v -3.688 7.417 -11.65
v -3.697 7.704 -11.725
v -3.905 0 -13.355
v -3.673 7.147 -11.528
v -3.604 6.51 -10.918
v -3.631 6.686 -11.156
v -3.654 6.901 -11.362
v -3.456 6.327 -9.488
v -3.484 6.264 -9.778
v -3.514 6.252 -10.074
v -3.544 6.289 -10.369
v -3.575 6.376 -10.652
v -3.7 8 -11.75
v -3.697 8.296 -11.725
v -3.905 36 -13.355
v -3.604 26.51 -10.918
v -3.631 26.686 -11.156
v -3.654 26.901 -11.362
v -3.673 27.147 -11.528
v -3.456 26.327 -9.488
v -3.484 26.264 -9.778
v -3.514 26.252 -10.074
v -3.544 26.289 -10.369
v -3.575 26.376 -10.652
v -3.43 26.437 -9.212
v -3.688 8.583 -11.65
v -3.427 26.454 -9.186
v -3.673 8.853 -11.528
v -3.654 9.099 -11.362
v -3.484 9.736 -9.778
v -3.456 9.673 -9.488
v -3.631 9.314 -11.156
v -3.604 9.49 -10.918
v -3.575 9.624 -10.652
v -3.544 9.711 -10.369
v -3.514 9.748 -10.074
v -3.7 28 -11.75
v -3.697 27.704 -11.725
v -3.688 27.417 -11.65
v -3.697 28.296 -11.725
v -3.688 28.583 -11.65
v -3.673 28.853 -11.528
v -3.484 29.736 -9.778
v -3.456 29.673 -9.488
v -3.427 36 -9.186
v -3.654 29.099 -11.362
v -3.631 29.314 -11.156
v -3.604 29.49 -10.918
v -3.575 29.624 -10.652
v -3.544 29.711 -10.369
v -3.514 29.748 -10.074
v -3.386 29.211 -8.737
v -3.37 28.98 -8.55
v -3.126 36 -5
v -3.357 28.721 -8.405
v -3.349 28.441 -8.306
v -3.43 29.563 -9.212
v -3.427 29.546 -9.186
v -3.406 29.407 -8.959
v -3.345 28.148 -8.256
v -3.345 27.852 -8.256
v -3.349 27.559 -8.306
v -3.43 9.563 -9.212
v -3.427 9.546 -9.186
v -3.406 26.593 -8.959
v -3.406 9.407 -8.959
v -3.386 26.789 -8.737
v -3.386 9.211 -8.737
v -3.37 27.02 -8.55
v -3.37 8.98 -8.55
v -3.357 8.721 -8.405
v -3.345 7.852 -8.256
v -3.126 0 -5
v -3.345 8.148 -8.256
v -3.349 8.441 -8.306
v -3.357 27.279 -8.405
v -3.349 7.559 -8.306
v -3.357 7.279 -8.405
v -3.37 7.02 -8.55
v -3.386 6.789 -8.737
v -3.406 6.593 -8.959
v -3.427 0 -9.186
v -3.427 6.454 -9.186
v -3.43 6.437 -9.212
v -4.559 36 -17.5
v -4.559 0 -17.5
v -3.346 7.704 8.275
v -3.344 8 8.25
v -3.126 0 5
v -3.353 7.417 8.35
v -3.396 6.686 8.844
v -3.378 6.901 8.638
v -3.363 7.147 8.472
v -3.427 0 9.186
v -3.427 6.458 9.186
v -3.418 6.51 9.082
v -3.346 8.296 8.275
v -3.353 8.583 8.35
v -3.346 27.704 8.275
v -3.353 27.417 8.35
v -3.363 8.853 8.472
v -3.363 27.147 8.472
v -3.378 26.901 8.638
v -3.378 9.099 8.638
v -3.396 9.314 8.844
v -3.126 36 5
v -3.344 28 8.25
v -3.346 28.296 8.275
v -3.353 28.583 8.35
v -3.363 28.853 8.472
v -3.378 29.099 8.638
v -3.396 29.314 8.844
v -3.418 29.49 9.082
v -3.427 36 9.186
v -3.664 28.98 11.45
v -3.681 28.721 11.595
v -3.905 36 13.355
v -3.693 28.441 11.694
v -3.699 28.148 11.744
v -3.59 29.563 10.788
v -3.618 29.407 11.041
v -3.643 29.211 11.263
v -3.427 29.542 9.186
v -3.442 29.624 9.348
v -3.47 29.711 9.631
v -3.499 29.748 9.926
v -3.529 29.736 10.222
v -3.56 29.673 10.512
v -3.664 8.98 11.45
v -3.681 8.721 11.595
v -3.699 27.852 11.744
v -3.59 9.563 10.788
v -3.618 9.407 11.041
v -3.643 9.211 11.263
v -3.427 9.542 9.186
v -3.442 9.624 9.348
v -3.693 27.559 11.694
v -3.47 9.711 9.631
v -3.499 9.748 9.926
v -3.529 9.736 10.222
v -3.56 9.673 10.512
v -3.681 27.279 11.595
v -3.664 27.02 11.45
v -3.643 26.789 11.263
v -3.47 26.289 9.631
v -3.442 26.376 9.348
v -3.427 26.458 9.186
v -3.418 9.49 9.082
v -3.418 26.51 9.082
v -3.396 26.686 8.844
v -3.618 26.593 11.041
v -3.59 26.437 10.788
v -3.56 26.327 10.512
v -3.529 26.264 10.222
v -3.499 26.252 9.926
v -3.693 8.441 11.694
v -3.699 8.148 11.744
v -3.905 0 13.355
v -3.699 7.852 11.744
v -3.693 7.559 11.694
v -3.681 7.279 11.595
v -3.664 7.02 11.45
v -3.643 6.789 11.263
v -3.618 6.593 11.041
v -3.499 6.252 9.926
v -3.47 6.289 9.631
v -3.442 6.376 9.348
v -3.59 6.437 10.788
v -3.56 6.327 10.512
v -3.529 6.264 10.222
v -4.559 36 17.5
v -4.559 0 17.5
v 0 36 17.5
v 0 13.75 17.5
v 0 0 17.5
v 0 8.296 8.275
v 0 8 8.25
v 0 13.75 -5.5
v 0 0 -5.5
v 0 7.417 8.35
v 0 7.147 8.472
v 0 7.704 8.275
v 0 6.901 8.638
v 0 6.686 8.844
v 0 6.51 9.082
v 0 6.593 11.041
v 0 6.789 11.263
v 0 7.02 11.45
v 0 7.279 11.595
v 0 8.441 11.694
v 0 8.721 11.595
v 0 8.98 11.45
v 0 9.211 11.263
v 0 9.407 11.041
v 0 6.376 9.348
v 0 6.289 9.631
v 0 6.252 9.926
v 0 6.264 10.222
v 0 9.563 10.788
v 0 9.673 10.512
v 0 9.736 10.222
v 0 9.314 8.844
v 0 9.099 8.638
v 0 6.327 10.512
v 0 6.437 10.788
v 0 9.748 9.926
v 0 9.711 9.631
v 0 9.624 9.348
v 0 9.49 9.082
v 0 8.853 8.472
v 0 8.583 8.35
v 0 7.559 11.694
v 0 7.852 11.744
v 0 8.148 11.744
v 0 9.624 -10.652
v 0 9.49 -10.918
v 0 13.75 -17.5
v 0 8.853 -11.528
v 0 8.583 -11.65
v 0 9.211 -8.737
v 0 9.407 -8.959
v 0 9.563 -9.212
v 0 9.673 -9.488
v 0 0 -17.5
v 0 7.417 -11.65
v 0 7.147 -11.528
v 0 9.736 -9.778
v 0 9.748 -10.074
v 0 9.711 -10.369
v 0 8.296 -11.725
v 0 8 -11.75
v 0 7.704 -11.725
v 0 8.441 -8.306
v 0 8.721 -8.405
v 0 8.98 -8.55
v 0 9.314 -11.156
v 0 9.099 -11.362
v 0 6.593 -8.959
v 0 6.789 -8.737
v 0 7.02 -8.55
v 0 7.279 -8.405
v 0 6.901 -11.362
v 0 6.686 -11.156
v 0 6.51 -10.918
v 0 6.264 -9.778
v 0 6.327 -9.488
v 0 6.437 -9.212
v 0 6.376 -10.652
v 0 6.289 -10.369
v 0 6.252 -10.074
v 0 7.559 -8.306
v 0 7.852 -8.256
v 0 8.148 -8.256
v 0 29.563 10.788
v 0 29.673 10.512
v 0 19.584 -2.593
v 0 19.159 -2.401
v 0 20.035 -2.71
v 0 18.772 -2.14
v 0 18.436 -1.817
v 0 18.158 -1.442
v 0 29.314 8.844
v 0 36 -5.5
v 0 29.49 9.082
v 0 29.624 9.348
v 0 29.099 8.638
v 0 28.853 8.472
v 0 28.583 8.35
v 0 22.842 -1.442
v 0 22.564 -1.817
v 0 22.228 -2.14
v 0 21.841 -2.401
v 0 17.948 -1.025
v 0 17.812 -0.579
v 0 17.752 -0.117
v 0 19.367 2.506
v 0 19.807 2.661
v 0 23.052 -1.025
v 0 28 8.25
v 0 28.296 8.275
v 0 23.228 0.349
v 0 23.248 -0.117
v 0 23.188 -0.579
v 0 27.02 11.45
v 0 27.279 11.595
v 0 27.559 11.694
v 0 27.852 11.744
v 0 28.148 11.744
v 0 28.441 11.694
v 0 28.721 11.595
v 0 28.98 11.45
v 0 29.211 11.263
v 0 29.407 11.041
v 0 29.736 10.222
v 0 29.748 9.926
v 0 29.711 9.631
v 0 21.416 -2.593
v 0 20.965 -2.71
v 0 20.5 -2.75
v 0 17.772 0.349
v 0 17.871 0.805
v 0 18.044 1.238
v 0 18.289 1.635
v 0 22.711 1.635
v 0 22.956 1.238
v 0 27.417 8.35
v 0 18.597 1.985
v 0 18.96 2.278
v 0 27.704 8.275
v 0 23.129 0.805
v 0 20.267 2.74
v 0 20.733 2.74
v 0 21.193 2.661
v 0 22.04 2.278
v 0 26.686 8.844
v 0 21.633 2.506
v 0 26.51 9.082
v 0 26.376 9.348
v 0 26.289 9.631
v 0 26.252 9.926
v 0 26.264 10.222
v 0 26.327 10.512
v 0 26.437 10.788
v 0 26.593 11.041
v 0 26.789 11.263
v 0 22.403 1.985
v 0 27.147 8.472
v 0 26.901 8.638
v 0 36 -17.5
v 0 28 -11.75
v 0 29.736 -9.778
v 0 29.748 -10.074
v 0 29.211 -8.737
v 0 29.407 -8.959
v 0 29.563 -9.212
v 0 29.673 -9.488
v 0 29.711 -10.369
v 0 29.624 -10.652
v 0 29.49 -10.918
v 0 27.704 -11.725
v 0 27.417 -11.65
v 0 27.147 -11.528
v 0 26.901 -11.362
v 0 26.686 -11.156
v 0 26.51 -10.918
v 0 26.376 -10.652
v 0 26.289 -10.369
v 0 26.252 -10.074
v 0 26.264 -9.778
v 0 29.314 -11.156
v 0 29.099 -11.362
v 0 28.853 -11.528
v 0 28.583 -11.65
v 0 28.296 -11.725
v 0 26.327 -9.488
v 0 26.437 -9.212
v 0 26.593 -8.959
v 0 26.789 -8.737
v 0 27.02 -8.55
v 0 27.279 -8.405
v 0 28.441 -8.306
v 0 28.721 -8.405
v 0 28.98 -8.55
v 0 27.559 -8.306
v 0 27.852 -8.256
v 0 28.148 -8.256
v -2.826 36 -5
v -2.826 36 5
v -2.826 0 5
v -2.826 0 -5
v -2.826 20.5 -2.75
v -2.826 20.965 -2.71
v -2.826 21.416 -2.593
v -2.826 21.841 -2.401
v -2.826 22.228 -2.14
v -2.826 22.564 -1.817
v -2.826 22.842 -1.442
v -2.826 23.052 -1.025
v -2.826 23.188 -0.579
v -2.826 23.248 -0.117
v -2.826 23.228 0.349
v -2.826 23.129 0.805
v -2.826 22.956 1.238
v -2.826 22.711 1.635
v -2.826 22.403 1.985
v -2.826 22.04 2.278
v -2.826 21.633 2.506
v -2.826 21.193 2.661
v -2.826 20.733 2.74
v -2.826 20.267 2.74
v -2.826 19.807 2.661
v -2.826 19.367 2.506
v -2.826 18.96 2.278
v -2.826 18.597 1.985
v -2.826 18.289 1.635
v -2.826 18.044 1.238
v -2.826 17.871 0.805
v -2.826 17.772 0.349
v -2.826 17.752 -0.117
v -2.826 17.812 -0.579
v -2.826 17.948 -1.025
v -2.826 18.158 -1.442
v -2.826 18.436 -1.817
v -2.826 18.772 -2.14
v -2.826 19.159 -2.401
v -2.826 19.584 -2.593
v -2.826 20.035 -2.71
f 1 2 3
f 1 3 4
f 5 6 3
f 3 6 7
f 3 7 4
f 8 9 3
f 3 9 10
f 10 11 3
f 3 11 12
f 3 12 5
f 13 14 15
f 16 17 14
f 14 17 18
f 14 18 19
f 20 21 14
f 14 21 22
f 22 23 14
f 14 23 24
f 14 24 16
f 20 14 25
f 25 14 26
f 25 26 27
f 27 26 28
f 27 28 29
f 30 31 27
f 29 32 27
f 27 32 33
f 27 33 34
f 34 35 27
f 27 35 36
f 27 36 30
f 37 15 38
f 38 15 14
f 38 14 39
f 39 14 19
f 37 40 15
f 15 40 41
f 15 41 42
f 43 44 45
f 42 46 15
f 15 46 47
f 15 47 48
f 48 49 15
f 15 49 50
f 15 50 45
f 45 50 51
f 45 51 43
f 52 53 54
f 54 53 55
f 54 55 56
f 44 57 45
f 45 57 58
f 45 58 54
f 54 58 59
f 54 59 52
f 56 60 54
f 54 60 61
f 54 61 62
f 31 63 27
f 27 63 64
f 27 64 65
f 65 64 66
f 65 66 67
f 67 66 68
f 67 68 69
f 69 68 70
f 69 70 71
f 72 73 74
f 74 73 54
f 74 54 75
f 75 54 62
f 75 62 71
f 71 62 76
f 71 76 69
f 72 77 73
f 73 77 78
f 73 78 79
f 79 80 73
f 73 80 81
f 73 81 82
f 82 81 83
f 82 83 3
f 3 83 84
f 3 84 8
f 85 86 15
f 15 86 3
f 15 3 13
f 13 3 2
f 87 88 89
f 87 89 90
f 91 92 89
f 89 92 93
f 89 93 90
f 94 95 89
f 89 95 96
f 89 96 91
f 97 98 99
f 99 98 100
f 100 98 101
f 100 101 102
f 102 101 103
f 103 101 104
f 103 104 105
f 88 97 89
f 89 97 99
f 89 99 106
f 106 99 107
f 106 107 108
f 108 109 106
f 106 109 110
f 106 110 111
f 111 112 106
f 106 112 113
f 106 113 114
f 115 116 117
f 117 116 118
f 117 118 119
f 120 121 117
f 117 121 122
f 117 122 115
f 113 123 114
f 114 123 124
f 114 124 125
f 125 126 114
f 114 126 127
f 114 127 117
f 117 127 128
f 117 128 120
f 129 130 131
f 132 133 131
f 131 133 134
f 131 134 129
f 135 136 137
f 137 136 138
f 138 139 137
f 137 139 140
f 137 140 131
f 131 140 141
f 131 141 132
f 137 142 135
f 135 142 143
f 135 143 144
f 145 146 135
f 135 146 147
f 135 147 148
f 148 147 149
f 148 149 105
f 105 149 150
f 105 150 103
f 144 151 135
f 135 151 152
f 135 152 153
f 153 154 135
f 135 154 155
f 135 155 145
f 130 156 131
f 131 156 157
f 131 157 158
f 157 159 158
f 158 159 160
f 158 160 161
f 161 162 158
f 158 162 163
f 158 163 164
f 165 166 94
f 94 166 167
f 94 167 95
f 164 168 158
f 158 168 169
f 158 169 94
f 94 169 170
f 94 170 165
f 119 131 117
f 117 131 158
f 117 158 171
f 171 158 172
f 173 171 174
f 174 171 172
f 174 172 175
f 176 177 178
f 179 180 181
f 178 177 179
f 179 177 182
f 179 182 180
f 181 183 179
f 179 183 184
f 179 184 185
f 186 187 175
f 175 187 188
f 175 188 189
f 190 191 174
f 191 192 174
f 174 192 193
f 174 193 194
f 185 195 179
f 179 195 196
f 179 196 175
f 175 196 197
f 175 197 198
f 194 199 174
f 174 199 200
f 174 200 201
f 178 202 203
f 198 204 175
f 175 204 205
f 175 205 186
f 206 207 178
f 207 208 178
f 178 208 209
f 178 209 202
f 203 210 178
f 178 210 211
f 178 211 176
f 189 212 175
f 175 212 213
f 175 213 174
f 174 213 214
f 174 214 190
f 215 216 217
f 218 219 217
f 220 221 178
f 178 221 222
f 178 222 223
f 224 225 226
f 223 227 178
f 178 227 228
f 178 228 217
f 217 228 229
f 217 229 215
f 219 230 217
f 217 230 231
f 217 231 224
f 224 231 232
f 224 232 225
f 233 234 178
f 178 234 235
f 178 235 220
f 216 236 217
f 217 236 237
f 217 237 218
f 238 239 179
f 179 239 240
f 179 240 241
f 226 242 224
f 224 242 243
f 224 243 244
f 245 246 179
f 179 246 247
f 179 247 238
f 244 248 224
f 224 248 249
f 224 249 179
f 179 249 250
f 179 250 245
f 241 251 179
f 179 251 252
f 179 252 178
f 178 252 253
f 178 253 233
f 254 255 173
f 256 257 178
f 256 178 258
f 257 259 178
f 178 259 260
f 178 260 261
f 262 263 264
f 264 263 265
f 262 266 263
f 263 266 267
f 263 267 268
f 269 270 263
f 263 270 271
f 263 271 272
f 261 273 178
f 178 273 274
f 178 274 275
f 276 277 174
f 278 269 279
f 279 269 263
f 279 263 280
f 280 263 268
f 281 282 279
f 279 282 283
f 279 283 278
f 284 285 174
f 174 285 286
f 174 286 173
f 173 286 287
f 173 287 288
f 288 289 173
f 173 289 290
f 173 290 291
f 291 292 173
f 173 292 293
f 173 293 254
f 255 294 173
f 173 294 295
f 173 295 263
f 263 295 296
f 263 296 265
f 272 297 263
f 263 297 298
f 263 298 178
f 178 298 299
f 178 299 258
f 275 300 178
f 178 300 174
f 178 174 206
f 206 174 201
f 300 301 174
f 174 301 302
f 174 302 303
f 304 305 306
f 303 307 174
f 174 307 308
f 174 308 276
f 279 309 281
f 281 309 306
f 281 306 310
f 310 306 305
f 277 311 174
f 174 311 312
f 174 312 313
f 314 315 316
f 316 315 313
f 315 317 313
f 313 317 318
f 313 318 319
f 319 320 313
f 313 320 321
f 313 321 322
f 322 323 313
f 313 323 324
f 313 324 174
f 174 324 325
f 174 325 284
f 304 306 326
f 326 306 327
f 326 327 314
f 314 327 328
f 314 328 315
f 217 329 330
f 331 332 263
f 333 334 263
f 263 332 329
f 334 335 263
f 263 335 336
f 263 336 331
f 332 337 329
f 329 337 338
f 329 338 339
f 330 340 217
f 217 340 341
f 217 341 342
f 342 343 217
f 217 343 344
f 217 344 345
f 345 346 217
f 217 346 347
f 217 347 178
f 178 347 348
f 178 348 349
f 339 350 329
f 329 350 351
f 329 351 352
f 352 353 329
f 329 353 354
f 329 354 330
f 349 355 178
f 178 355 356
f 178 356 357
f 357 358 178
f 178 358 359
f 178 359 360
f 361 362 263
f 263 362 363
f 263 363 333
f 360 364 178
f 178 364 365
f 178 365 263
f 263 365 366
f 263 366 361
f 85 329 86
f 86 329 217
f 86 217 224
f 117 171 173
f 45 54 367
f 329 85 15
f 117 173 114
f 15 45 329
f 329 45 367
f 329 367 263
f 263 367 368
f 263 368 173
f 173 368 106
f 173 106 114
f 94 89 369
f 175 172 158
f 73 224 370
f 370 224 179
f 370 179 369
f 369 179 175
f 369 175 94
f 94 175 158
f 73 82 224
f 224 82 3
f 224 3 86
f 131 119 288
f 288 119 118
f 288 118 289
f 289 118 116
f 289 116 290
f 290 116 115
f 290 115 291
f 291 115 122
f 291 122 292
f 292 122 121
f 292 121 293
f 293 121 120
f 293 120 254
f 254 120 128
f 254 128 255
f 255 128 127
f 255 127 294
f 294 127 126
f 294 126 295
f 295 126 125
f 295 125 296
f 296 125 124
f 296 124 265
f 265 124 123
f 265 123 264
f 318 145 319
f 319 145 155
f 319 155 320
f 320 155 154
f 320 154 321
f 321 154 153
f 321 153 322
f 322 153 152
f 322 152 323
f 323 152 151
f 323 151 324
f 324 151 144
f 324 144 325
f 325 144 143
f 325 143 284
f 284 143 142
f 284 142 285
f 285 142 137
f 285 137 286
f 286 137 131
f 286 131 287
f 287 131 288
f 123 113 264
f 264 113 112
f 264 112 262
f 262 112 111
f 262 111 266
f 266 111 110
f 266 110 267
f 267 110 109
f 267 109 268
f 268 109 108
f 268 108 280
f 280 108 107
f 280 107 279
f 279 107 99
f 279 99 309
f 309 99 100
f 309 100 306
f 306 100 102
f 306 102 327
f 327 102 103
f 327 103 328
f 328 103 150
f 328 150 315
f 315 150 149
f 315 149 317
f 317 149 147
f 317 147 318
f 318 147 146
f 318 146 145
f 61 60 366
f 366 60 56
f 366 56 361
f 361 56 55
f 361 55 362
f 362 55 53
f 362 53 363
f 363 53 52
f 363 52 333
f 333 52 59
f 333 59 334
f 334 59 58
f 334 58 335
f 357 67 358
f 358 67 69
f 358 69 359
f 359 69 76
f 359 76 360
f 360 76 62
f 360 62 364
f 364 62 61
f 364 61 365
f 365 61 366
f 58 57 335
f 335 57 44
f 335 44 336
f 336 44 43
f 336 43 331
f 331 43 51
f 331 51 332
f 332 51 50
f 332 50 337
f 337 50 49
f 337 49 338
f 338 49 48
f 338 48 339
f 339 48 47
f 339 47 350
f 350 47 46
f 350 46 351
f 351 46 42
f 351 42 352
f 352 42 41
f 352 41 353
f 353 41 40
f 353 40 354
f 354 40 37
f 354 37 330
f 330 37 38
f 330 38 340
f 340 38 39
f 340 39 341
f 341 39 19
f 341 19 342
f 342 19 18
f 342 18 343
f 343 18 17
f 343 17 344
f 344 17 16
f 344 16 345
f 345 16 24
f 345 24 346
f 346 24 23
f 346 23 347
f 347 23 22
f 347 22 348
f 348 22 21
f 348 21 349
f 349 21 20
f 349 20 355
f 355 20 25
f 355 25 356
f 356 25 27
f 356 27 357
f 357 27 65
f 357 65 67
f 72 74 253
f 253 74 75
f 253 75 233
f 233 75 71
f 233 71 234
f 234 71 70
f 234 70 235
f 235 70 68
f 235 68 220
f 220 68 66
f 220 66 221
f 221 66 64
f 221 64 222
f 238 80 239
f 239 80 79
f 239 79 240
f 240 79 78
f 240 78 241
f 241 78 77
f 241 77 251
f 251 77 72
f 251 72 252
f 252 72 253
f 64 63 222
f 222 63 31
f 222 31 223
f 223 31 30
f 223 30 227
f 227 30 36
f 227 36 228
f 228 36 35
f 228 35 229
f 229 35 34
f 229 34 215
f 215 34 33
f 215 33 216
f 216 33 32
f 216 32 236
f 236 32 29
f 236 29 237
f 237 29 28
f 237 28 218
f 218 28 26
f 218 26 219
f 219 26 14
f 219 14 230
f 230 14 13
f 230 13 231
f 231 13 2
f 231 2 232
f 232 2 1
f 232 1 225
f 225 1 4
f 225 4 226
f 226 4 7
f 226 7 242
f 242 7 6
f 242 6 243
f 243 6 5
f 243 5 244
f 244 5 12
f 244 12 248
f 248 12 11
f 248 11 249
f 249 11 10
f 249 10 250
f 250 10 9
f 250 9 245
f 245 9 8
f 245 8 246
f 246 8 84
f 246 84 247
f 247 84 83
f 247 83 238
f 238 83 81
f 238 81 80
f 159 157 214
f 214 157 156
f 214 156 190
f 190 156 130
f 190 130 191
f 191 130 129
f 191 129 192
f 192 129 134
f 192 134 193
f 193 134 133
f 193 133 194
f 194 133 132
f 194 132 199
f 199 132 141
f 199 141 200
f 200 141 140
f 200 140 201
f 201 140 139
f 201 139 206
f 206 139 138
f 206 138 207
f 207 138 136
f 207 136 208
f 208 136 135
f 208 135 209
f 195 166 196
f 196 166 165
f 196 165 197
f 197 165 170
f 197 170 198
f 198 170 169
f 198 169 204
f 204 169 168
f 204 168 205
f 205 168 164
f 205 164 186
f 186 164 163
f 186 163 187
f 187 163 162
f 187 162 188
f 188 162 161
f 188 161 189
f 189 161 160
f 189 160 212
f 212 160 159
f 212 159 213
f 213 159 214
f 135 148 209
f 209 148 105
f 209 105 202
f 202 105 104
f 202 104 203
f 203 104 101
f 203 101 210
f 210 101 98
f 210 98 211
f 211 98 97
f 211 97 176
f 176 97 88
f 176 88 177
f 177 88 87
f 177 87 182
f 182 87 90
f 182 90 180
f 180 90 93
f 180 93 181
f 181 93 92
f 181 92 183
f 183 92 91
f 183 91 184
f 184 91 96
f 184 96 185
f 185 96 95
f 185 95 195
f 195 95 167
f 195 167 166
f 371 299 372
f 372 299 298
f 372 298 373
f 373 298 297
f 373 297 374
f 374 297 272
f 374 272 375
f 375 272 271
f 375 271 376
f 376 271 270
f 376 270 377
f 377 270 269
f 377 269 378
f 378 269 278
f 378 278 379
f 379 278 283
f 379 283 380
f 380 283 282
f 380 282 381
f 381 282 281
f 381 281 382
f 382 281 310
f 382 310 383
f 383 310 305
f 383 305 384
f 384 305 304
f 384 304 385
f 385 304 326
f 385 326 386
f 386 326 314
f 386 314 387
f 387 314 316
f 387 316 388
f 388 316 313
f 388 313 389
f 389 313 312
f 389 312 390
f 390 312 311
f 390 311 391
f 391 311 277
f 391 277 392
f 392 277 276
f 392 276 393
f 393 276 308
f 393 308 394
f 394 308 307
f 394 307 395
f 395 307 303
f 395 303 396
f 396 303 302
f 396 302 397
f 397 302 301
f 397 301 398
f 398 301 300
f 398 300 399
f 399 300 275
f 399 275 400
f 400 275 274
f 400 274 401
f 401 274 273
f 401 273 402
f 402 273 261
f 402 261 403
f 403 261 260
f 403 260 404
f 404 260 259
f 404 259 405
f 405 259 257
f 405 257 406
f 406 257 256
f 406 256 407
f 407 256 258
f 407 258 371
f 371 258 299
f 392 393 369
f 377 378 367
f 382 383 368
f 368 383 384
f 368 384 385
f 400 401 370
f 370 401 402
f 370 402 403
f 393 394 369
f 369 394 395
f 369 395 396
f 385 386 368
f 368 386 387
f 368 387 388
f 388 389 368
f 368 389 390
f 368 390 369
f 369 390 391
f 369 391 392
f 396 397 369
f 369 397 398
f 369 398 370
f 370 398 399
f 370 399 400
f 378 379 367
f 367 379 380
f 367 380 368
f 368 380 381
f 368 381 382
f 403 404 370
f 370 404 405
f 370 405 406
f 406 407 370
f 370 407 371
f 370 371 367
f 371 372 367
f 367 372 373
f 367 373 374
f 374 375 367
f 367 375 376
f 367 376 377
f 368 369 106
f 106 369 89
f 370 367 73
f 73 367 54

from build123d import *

# Parameters (mm, degrees)
EXTRUDE_1_DEPTH     = 36
SKETCH_2_R          = 1.75
CUT_EXTRUDE_1_DEPTH = 41.28690122
SKETCH_3_W          = 0.252686492
SKETCH_3_H          = 10
EXTRUDE_2_DEPTH     = 36
SKETCH_4_R          = 2.75
CUT_EXTRUDE_2_DEPTH = 41.286901364
SKETCH_5_W          = 10
SKETCH_5_H          = 36
CUT_EXTRUDE_3_DEPTH = 0.3


with BuildPart() as part:
    # Эскиз1 → Бобышка-Вытянуть1 (new body)
    with BuildSketch(Plane(origin=(0, 0, 0), x_dir=(1, 0, 0), z_dir=(0, 1, 0))):
        with BuildLine():
            Line((-4.558992206, 17.5), (0, 17.5))
            Line((0, 17.5), (0, -17.5))
            Line((0, -17.5), (-4.558992206, -17.5))
            ThreePointArc((-4.558992206, -17.5), (-3, 0), (-4.558992206, 17.5))
        make_face()
    extrude(amount=EXTRUDE_1_DEPTH)

    # Эскиз2 → Вырез-Вытянуть1 (cut, through all)
    with BuildSketch(Plane(origin=(0, 0, 0), x_dir=(0, 0, -1), z_dir=(1, 0, 0))):
        with Locations((-10, 28)):
            Circle(SKETCH_2_R)
        with Locations((10, 28)):
            Circle(SKETCH_2_R)
        with Locations((10, 8)):
            Circle(SKETCH_2_R)
        with Locations((-10, 8)):
            Circle(SKETCH_2_R)
    extrude(amount=-CUT_EXTRUDE_1_DEPTH, mode=Mode.SUBTRACT)

    # Эскиз3 → Бобышка-Вытянуть2 (add, through all)
    with BuildSketch(Plane(origin=(0, 36, 0), x_dir=(1, 0, 0), z_dir=(0, 1, 0))):
        with Locations((-3, 0)):
            Rectangle(SKETCH_3_W, SKETCH_3_H)
    extrude(amount=-EXTRUDE_2_DEPTH)

    # Эскиз4 → Вырез-Вытянуть2 (cut, through all)
    with BuildSketch(Plane(origin=(0, 0, 0), x_dir=(0, 0, -1), z_dir=(1, 0, 0))):
        with Locations((0, 20.5)):
            Circle(SKETCH_4_R)
    extrude(amount=-CUT_EXTRUDE_2_DEPTH, mode=Mode.SUBTRACT)

    # Эскиз5 → Вырез-Вытянуть3 (cut)
    with BuildSketch(Plane.ZY.offset(3.126343246)):
        with Locations((0, 18)):
            Rectangle(SKETCH_5_W, SKETCH_5_H)
    extrude(amount=-CUT_EXTRUDE_3_DEPTH, mode=Mode.SUBTRACT)


solid = part.part
